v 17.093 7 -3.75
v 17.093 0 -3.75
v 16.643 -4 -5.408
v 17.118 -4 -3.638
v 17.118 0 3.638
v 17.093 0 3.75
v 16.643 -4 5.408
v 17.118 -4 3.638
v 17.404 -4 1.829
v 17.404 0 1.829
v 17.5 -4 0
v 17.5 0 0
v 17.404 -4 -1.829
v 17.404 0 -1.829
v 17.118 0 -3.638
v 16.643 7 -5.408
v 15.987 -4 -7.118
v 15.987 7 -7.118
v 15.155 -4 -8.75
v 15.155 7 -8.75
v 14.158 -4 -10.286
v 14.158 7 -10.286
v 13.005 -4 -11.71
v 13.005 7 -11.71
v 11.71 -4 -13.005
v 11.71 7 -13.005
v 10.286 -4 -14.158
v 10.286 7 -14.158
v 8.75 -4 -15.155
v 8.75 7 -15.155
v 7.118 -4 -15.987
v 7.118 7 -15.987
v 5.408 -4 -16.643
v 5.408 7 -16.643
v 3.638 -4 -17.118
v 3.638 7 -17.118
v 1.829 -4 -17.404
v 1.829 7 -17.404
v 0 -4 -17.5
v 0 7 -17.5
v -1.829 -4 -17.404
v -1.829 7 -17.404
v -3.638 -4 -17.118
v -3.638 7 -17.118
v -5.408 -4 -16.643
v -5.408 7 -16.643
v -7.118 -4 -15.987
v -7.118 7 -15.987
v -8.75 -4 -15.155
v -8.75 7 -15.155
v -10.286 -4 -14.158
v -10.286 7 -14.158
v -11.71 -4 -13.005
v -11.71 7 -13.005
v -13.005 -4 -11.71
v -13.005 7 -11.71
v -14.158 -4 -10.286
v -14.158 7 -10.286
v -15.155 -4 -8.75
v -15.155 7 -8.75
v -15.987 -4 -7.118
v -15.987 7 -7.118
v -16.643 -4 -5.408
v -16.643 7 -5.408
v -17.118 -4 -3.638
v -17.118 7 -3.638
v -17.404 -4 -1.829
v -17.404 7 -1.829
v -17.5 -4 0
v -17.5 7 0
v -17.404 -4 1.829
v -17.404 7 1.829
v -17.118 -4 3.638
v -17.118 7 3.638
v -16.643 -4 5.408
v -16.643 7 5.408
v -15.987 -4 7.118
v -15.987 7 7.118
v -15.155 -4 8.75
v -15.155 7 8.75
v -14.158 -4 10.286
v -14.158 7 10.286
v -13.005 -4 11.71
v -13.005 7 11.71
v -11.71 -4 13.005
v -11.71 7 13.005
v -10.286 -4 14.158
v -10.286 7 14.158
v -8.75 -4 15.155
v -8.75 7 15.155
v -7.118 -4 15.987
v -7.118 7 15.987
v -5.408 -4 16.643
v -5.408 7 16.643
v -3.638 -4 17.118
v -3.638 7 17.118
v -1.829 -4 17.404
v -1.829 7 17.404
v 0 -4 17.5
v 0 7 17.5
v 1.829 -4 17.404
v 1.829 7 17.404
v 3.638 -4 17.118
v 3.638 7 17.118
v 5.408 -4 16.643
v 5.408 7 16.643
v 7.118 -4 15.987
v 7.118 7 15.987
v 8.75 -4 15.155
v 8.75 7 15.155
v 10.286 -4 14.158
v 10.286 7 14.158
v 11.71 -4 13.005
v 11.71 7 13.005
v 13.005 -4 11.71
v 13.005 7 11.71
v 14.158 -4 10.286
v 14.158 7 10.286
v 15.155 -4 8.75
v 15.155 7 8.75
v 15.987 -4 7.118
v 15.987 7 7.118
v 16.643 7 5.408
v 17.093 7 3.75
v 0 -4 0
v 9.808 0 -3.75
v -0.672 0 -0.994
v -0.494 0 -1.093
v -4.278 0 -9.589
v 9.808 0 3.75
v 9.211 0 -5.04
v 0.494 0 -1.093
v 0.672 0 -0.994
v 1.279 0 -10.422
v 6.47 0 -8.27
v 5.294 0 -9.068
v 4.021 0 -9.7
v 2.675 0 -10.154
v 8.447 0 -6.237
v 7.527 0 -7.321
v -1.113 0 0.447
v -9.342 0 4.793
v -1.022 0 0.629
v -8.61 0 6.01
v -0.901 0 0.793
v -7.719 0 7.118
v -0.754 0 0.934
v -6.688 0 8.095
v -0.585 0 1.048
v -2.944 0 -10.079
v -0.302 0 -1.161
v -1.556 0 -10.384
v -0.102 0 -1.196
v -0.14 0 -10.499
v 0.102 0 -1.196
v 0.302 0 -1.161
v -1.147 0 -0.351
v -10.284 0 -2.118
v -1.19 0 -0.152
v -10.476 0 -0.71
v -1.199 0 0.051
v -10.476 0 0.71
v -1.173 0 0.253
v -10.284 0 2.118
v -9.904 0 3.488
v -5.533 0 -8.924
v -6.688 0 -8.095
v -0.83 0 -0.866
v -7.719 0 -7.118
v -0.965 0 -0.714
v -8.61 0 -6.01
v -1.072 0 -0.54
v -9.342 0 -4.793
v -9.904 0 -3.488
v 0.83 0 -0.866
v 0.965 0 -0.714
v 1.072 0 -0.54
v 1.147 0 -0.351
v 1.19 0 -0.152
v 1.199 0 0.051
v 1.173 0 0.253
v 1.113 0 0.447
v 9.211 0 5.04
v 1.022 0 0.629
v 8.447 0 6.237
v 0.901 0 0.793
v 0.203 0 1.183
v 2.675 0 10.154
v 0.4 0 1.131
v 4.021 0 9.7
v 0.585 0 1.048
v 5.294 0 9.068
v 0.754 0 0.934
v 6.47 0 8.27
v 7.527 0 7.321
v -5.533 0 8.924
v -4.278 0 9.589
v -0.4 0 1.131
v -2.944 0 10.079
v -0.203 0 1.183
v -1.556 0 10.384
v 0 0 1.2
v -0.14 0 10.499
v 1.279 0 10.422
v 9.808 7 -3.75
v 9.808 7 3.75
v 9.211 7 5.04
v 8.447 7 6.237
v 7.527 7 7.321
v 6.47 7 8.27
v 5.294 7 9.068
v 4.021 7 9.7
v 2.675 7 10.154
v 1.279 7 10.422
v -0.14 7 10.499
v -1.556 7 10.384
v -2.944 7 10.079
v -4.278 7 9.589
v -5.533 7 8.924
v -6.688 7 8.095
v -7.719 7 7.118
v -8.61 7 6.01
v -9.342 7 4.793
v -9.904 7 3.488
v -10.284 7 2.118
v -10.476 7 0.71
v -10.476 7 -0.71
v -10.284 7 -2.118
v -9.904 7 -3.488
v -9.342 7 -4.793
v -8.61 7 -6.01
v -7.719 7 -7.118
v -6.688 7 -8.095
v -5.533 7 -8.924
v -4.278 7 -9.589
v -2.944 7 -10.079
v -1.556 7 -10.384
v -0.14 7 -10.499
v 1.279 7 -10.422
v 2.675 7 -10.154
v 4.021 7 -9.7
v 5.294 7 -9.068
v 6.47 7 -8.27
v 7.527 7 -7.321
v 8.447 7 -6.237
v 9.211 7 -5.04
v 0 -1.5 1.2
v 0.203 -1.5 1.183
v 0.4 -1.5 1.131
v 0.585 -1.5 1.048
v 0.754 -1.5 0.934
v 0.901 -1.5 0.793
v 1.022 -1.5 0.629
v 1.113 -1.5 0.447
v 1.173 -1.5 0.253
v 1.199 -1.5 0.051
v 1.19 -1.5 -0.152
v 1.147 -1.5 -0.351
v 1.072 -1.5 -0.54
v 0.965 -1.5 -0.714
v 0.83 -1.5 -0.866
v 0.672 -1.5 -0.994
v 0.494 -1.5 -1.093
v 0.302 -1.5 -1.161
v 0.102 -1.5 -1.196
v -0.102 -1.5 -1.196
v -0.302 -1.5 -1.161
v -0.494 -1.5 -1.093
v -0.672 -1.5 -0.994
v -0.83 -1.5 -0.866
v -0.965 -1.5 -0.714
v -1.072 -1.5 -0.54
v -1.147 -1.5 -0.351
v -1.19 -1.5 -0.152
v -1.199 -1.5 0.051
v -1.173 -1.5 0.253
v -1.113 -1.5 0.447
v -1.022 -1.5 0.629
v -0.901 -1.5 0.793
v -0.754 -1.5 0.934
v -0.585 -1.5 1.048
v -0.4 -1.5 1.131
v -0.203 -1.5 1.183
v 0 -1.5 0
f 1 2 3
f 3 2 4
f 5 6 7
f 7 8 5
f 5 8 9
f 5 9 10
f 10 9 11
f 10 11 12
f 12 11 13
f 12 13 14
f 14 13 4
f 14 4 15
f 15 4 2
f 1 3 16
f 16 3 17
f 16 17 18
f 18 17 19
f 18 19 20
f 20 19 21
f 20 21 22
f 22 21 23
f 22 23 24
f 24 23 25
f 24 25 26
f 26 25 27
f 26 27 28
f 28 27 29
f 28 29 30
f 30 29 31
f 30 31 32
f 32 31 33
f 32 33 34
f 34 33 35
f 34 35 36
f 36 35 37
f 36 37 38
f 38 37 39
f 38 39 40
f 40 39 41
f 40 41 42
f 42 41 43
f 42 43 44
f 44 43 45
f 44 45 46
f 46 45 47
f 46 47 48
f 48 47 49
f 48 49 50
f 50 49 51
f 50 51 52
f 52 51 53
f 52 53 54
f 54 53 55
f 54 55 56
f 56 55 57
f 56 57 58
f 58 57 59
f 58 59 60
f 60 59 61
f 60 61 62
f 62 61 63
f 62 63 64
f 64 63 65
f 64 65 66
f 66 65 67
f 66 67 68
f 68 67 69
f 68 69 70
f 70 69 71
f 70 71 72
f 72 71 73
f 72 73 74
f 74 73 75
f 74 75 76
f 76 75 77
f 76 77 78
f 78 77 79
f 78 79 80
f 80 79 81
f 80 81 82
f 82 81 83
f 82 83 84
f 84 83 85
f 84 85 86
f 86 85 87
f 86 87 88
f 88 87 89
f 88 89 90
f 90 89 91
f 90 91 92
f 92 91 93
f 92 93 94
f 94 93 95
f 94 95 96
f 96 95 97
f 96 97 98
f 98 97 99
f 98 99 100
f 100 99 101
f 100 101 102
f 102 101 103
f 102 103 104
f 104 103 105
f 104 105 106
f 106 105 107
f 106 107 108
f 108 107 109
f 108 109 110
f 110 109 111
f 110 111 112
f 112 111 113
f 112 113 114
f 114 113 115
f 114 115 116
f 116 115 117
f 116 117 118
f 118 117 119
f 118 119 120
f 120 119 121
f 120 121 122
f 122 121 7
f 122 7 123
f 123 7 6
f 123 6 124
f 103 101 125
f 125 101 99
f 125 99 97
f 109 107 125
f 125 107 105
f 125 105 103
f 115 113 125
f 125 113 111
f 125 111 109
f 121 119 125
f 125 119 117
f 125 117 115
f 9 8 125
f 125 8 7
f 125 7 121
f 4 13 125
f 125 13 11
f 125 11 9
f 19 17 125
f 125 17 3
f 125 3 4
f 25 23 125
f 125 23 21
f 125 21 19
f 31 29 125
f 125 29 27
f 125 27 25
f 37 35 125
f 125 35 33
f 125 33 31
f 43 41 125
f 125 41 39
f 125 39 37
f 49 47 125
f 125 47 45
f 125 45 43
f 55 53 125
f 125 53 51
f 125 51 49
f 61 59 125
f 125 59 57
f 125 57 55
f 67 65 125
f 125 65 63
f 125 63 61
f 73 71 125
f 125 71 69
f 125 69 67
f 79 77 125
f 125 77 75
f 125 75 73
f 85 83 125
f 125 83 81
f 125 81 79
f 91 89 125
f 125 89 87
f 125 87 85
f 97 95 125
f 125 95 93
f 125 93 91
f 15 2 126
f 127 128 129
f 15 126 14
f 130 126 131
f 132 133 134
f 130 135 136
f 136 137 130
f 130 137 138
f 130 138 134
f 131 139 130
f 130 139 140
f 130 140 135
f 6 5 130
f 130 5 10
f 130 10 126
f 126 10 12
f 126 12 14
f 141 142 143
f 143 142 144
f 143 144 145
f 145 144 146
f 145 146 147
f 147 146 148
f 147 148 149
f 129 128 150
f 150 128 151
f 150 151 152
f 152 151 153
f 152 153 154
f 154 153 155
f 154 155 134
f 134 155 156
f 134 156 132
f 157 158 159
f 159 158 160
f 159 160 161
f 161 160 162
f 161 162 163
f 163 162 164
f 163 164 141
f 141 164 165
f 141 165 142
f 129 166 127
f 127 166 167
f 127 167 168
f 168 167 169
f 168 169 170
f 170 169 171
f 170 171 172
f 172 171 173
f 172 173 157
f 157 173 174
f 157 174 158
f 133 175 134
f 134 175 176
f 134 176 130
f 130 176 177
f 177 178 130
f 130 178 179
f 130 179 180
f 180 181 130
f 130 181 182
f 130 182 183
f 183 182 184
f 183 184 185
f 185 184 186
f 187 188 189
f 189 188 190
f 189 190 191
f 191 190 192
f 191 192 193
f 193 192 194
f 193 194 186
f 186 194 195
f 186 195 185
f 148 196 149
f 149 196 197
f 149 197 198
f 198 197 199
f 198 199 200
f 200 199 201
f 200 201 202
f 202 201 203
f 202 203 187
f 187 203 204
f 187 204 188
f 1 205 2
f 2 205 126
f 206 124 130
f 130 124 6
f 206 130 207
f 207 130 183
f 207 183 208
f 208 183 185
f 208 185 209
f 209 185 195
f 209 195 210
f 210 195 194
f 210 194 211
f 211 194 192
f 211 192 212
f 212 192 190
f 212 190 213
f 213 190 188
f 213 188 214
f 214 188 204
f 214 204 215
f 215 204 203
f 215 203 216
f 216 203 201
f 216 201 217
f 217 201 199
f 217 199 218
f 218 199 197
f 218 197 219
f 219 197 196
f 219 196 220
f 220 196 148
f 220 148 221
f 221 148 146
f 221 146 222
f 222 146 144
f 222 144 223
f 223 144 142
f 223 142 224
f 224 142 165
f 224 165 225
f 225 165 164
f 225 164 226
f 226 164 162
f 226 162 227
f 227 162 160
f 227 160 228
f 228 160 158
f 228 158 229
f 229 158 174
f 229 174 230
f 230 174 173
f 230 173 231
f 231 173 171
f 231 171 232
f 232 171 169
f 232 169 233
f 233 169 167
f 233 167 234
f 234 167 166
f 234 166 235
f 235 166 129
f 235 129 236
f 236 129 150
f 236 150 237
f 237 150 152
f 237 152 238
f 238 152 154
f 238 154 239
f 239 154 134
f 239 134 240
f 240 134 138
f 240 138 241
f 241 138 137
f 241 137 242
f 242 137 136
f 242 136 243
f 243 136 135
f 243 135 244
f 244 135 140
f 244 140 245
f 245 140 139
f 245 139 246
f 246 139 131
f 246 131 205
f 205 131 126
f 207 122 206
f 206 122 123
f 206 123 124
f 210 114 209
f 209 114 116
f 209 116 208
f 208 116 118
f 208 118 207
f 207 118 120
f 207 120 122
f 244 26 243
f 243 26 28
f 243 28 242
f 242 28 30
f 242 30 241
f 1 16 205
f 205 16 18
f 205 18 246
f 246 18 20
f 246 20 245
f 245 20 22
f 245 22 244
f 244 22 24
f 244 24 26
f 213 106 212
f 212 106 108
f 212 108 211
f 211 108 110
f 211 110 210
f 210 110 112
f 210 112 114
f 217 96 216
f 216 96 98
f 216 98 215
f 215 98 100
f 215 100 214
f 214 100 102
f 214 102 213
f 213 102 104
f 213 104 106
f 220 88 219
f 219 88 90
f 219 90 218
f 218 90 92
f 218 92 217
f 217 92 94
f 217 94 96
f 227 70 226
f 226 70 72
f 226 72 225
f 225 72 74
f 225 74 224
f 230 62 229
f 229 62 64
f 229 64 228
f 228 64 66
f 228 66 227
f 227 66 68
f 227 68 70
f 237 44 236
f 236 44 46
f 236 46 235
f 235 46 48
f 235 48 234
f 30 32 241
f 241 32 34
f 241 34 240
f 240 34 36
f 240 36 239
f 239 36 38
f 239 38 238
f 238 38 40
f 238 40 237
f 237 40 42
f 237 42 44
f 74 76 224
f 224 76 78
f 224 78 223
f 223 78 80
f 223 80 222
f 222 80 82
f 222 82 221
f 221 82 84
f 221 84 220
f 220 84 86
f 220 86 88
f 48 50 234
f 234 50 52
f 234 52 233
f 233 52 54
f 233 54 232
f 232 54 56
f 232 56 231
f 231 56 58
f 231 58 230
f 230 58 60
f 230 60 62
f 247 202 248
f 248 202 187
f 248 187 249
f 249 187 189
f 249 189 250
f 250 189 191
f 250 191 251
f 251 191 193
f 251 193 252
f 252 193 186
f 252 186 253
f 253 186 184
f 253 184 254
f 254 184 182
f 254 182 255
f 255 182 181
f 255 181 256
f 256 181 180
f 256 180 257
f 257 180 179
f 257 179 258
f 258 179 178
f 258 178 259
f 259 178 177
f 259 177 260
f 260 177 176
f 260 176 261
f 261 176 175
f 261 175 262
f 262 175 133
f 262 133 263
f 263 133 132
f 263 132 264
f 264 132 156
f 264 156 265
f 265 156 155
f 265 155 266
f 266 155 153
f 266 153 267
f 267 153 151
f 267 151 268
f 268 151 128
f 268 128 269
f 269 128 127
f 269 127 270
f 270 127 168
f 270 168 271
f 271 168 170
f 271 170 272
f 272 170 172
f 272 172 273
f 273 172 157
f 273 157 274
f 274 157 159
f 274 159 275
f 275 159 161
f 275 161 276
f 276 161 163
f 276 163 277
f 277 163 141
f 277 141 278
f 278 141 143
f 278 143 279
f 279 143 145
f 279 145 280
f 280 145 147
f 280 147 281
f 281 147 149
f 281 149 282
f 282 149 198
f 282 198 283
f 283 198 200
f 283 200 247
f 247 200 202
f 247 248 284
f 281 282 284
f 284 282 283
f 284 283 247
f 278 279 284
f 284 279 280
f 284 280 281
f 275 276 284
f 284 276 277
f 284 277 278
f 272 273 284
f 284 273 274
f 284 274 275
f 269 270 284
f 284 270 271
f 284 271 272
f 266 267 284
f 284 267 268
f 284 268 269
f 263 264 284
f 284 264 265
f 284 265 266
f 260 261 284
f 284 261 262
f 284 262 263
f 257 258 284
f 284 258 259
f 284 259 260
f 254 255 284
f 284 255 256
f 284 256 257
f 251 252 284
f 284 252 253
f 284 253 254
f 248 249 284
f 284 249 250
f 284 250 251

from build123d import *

# Parameters (mm, degrees)
SKETCH2_R           = 17.5
BOSS_EXTRUDE1_DEPTH = 4
BOSS_EXTRUDE2_START = 7
BOSS_EXTRUDE2_DEPTH = 7
SKETCH2_4_R         = 1.2
CUT_EXTRUDE1_DEPTH  = 1.5


with BuildPart() as part:
    # Sketch2 → Boss-Extrude1 (new body)
    with BuildSketch(Plane(origin=(0, 0, 0), x_dir=(1, 0, 0), z_dir=(0, 1, 0))):
        Circle(SKETCH2_R)
    extrude(amount=-BOSS_EXTRUDE1_DEPTH)

    # Sketch2<3> → Boss-Extrude2 (add)
    with BuildSketch(Plane(origin=(0, 0, 0), x_dir=(1, 0, 0), z_dir=(0, 1, 0)).offset(BOSS_EXTRUDE2_START)):
        with BuildLine():
            Line((17.093492914, -3.75), (9.807522623, -3.75))
            ThreePointArc((9.807522623, -3.75), (-10.5, 0), (9.807522623, 3.75))
            Line((9.807522623, 3.75), (17.093492914, 3.75))
            ThreePointArc((17.093492914, 3.75), (-17.5, 0), (17.093492914, -3.75))
        make_face()
    extrude(amount=-BOSS_EXTRUDE2_DEPTH)

    # Sketch2<4> → Cut-Extrude1 (cut)
    with BuildSketch(Plane(origin=(0, 0, 0), x_dir=(1, 0, 0), z_dir=(0, 1, 0))):
        Circle(SKETCH2_4_R)
    extrude(amount=-CUT_EXTRUDE1_DEPTH, mode=Mode.SUBTRACT)


solid = part.part
